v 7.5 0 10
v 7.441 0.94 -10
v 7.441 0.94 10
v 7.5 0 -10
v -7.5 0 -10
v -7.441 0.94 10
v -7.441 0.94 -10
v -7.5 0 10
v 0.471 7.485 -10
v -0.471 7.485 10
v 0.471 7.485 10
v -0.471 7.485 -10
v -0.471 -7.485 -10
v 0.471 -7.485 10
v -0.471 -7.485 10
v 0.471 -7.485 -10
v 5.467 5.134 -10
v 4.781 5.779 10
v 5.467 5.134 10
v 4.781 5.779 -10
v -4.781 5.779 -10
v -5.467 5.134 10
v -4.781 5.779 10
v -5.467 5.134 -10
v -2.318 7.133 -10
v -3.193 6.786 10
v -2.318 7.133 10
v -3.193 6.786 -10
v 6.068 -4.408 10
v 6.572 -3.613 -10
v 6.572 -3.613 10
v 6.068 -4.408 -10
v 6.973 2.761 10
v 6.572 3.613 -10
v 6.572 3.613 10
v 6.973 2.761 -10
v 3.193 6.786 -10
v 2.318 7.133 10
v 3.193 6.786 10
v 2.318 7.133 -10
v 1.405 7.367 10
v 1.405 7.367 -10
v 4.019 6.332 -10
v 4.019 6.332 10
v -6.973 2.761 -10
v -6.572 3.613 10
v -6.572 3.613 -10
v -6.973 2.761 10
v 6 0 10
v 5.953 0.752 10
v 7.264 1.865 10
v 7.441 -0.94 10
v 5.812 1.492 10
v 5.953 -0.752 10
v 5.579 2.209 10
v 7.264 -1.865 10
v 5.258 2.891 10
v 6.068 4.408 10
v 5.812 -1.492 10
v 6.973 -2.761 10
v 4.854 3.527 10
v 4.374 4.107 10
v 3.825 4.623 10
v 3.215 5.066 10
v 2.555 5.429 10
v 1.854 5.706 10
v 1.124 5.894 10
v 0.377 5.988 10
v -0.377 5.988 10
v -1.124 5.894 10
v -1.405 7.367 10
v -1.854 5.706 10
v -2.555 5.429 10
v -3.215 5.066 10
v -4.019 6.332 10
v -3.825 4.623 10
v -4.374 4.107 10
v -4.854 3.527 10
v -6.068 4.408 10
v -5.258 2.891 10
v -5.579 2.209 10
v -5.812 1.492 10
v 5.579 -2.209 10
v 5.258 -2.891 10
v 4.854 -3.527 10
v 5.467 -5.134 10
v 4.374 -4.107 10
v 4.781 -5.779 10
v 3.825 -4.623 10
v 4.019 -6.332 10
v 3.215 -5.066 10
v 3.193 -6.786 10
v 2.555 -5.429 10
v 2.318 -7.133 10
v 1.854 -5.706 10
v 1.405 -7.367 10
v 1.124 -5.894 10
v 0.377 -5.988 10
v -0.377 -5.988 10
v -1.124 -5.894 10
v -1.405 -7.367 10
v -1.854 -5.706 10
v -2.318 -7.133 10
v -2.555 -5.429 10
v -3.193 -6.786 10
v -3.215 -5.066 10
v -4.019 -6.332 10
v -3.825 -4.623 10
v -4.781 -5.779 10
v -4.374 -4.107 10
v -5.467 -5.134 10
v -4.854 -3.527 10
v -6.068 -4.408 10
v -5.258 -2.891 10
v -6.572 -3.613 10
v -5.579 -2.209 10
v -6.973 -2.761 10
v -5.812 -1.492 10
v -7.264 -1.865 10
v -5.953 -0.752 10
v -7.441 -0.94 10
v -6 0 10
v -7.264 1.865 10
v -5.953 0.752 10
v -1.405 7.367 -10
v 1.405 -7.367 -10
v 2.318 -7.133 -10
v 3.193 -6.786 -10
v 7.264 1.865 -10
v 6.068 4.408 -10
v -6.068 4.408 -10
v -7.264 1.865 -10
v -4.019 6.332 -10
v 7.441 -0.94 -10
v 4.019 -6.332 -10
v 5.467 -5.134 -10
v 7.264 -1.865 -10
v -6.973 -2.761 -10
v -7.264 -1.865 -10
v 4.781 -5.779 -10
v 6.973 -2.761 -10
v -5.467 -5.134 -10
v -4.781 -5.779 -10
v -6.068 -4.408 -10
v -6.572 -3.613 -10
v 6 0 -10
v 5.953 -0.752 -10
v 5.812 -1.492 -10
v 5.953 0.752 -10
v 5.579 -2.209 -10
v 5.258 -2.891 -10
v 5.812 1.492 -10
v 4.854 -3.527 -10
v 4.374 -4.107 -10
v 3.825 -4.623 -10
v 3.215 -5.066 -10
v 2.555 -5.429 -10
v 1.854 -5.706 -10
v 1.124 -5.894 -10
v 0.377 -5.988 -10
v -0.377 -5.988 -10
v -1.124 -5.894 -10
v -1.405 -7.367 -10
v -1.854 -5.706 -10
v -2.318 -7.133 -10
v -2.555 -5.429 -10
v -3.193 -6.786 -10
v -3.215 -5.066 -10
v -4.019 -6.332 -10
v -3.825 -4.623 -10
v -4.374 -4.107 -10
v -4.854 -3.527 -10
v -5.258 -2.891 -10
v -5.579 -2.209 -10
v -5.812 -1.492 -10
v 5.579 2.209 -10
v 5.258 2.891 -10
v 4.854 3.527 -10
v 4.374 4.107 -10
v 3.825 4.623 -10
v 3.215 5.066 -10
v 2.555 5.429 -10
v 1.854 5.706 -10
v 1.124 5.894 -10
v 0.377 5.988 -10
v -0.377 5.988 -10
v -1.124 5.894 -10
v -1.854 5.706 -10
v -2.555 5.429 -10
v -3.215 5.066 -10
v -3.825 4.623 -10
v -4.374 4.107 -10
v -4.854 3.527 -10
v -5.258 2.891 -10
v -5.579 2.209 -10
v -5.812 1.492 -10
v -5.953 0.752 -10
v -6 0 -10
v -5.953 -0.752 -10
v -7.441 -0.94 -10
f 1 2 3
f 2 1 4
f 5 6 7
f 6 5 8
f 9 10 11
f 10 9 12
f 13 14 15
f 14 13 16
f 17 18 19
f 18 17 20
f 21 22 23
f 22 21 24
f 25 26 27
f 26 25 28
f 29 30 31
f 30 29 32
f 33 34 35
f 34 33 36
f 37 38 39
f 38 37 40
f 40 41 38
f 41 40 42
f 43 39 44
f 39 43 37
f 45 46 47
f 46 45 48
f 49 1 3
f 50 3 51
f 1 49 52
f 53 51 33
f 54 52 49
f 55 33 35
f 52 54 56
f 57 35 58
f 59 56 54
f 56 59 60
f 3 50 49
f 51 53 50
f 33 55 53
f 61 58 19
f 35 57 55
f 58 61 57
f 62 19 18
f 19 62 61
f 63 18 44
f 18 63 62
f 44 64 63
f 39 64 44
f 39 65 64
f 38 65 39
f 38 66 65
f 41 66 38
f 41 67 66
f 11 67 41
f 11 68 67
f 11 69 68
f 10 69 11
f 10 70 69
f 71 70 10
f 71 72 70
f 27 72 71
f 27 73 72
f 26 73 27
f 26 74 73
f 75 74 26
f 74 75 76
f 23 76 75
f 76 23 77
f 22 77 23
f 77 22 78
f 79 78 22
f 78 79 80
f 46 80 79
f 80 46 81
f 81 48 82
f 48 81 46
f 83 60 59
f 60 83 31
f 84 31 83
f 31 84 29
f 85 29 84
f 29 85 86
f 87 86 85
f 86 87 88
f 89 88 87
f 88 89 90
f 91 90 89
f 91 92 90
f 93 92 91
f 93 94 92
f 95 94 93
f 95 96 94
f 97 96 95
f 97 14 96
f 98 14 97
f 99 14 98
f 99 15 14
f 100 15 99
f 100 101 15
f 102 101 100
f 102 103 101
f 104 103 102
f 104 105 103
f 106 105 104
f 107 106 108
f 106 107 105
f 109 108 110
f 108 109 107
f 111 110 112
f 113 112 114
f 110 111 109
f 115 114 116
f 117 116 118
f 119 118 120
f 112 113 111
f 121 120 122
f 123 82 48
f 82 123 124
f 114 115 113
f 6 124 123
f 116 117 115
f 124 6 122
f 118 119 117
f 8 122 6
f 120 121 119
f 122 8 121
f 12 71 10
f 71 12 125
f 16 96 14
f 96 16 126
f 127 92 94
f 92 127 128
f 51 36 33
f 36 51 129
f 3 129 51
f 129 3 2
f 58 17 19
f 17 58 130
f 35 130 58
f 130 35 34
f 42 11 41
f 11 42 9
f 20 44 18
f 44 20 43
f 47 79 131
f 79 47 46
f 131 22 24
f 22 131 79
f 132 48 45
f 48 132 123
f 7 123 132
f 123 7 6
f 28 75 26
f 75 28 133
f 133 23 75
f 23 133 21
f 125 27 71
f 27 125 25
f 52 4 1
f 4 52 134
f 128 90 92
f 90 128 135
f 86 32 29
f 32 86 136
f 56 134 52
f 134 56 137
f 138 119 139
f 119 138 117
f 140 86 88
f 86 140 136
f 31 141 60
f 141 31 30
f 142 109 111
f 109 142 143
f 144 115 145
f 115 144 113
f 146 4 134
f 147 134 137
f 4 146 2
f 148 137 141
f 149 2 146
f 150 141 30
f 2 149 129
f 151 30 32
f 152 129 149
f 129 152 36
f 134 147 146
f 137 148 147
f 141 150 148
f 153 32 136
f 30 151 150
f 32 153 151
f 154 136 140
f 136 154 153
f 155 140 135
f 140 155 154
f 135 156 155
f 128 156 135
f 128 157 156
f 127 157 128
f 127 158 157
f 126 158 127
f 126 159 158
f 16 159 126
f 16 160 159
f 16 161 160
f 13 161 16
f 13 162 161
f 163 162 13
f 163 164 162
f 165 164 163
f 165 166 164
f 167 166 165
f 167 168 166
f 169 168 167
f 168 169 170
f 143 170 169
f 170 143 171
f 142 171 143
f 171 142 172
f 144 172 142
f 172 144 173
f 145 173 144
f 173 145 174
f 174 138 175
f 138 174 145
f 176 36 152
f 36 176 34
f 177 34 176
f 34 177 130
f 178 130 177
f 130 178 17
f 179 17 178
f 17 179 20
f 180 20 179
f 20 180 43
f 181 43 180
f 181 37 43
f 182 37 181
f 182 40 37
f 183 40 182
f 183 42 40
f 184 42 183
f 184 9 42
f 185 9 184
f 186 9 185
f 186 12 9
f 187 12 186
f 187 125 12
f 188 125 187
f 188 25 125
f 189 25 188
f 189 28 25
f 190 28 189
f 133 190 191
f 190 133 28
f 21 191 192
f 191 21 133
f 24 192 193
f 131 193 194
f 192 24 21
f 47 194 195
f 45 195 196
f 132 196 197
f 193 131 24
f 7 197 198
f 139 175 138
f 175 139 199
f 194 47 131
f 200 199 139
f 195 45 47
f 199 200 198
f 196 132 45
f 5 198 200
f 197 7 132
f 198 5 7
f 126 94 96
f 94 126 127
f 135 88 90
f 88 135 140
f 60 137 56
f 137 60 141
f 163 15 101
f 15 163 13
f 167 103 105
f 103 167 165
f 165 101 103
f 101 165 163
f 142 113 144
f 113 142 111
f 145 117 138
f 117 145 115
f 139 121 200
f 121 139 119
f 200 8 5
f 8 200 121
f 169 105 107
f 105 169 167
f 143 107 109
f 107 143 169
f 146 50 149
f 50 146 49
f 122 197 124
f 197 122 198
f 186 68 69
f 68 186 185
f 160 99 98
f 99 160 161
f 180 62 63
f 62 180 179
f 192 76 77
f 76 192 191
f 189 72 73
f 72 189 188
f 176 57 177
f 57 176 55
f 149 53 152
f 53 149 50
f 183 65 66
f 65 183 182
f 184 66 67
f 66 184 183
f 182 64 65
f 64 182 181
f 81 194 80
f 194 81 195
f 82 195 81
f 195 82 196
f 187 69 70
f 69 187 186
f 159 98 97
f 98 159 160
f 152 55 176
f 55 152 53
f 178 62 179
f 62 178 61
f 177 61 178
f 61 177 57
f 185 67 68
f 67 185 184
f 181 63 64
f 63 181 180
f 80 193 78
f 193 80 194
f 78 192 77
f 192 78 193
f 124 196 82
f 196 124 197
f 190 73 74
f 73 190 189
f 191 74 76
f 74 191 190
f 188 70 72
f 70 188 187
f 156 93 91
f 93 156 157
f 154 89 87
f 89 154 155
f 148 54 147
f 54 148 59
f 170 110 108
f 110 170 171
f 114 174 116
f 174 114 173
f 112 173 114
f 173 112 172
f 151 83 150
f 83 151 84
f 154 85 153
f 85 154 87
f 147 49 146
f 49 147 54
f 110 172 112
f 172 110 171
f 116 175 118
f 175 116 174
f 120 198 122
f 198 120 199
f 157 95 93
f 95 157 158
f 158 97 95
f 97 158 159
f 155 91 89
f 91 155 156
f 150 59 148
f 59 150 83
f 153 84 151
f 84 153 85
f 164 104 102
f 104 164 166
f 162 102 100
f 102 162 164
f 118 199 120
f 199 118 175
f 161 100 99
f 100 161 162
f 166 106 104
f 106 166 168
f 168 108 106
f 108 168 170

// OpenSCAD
$fn = 50;


difference() {
	union() {
		translate(v = [0, 0, -10.0000000000]) {
			cylinder(h = 20, r = 7.5000000000);
		}
	}
	union() {
		translate(v = [0, 0, -100.0000000000]) {
			cylinder(h = 200, r = 6);
		}
	}
}
